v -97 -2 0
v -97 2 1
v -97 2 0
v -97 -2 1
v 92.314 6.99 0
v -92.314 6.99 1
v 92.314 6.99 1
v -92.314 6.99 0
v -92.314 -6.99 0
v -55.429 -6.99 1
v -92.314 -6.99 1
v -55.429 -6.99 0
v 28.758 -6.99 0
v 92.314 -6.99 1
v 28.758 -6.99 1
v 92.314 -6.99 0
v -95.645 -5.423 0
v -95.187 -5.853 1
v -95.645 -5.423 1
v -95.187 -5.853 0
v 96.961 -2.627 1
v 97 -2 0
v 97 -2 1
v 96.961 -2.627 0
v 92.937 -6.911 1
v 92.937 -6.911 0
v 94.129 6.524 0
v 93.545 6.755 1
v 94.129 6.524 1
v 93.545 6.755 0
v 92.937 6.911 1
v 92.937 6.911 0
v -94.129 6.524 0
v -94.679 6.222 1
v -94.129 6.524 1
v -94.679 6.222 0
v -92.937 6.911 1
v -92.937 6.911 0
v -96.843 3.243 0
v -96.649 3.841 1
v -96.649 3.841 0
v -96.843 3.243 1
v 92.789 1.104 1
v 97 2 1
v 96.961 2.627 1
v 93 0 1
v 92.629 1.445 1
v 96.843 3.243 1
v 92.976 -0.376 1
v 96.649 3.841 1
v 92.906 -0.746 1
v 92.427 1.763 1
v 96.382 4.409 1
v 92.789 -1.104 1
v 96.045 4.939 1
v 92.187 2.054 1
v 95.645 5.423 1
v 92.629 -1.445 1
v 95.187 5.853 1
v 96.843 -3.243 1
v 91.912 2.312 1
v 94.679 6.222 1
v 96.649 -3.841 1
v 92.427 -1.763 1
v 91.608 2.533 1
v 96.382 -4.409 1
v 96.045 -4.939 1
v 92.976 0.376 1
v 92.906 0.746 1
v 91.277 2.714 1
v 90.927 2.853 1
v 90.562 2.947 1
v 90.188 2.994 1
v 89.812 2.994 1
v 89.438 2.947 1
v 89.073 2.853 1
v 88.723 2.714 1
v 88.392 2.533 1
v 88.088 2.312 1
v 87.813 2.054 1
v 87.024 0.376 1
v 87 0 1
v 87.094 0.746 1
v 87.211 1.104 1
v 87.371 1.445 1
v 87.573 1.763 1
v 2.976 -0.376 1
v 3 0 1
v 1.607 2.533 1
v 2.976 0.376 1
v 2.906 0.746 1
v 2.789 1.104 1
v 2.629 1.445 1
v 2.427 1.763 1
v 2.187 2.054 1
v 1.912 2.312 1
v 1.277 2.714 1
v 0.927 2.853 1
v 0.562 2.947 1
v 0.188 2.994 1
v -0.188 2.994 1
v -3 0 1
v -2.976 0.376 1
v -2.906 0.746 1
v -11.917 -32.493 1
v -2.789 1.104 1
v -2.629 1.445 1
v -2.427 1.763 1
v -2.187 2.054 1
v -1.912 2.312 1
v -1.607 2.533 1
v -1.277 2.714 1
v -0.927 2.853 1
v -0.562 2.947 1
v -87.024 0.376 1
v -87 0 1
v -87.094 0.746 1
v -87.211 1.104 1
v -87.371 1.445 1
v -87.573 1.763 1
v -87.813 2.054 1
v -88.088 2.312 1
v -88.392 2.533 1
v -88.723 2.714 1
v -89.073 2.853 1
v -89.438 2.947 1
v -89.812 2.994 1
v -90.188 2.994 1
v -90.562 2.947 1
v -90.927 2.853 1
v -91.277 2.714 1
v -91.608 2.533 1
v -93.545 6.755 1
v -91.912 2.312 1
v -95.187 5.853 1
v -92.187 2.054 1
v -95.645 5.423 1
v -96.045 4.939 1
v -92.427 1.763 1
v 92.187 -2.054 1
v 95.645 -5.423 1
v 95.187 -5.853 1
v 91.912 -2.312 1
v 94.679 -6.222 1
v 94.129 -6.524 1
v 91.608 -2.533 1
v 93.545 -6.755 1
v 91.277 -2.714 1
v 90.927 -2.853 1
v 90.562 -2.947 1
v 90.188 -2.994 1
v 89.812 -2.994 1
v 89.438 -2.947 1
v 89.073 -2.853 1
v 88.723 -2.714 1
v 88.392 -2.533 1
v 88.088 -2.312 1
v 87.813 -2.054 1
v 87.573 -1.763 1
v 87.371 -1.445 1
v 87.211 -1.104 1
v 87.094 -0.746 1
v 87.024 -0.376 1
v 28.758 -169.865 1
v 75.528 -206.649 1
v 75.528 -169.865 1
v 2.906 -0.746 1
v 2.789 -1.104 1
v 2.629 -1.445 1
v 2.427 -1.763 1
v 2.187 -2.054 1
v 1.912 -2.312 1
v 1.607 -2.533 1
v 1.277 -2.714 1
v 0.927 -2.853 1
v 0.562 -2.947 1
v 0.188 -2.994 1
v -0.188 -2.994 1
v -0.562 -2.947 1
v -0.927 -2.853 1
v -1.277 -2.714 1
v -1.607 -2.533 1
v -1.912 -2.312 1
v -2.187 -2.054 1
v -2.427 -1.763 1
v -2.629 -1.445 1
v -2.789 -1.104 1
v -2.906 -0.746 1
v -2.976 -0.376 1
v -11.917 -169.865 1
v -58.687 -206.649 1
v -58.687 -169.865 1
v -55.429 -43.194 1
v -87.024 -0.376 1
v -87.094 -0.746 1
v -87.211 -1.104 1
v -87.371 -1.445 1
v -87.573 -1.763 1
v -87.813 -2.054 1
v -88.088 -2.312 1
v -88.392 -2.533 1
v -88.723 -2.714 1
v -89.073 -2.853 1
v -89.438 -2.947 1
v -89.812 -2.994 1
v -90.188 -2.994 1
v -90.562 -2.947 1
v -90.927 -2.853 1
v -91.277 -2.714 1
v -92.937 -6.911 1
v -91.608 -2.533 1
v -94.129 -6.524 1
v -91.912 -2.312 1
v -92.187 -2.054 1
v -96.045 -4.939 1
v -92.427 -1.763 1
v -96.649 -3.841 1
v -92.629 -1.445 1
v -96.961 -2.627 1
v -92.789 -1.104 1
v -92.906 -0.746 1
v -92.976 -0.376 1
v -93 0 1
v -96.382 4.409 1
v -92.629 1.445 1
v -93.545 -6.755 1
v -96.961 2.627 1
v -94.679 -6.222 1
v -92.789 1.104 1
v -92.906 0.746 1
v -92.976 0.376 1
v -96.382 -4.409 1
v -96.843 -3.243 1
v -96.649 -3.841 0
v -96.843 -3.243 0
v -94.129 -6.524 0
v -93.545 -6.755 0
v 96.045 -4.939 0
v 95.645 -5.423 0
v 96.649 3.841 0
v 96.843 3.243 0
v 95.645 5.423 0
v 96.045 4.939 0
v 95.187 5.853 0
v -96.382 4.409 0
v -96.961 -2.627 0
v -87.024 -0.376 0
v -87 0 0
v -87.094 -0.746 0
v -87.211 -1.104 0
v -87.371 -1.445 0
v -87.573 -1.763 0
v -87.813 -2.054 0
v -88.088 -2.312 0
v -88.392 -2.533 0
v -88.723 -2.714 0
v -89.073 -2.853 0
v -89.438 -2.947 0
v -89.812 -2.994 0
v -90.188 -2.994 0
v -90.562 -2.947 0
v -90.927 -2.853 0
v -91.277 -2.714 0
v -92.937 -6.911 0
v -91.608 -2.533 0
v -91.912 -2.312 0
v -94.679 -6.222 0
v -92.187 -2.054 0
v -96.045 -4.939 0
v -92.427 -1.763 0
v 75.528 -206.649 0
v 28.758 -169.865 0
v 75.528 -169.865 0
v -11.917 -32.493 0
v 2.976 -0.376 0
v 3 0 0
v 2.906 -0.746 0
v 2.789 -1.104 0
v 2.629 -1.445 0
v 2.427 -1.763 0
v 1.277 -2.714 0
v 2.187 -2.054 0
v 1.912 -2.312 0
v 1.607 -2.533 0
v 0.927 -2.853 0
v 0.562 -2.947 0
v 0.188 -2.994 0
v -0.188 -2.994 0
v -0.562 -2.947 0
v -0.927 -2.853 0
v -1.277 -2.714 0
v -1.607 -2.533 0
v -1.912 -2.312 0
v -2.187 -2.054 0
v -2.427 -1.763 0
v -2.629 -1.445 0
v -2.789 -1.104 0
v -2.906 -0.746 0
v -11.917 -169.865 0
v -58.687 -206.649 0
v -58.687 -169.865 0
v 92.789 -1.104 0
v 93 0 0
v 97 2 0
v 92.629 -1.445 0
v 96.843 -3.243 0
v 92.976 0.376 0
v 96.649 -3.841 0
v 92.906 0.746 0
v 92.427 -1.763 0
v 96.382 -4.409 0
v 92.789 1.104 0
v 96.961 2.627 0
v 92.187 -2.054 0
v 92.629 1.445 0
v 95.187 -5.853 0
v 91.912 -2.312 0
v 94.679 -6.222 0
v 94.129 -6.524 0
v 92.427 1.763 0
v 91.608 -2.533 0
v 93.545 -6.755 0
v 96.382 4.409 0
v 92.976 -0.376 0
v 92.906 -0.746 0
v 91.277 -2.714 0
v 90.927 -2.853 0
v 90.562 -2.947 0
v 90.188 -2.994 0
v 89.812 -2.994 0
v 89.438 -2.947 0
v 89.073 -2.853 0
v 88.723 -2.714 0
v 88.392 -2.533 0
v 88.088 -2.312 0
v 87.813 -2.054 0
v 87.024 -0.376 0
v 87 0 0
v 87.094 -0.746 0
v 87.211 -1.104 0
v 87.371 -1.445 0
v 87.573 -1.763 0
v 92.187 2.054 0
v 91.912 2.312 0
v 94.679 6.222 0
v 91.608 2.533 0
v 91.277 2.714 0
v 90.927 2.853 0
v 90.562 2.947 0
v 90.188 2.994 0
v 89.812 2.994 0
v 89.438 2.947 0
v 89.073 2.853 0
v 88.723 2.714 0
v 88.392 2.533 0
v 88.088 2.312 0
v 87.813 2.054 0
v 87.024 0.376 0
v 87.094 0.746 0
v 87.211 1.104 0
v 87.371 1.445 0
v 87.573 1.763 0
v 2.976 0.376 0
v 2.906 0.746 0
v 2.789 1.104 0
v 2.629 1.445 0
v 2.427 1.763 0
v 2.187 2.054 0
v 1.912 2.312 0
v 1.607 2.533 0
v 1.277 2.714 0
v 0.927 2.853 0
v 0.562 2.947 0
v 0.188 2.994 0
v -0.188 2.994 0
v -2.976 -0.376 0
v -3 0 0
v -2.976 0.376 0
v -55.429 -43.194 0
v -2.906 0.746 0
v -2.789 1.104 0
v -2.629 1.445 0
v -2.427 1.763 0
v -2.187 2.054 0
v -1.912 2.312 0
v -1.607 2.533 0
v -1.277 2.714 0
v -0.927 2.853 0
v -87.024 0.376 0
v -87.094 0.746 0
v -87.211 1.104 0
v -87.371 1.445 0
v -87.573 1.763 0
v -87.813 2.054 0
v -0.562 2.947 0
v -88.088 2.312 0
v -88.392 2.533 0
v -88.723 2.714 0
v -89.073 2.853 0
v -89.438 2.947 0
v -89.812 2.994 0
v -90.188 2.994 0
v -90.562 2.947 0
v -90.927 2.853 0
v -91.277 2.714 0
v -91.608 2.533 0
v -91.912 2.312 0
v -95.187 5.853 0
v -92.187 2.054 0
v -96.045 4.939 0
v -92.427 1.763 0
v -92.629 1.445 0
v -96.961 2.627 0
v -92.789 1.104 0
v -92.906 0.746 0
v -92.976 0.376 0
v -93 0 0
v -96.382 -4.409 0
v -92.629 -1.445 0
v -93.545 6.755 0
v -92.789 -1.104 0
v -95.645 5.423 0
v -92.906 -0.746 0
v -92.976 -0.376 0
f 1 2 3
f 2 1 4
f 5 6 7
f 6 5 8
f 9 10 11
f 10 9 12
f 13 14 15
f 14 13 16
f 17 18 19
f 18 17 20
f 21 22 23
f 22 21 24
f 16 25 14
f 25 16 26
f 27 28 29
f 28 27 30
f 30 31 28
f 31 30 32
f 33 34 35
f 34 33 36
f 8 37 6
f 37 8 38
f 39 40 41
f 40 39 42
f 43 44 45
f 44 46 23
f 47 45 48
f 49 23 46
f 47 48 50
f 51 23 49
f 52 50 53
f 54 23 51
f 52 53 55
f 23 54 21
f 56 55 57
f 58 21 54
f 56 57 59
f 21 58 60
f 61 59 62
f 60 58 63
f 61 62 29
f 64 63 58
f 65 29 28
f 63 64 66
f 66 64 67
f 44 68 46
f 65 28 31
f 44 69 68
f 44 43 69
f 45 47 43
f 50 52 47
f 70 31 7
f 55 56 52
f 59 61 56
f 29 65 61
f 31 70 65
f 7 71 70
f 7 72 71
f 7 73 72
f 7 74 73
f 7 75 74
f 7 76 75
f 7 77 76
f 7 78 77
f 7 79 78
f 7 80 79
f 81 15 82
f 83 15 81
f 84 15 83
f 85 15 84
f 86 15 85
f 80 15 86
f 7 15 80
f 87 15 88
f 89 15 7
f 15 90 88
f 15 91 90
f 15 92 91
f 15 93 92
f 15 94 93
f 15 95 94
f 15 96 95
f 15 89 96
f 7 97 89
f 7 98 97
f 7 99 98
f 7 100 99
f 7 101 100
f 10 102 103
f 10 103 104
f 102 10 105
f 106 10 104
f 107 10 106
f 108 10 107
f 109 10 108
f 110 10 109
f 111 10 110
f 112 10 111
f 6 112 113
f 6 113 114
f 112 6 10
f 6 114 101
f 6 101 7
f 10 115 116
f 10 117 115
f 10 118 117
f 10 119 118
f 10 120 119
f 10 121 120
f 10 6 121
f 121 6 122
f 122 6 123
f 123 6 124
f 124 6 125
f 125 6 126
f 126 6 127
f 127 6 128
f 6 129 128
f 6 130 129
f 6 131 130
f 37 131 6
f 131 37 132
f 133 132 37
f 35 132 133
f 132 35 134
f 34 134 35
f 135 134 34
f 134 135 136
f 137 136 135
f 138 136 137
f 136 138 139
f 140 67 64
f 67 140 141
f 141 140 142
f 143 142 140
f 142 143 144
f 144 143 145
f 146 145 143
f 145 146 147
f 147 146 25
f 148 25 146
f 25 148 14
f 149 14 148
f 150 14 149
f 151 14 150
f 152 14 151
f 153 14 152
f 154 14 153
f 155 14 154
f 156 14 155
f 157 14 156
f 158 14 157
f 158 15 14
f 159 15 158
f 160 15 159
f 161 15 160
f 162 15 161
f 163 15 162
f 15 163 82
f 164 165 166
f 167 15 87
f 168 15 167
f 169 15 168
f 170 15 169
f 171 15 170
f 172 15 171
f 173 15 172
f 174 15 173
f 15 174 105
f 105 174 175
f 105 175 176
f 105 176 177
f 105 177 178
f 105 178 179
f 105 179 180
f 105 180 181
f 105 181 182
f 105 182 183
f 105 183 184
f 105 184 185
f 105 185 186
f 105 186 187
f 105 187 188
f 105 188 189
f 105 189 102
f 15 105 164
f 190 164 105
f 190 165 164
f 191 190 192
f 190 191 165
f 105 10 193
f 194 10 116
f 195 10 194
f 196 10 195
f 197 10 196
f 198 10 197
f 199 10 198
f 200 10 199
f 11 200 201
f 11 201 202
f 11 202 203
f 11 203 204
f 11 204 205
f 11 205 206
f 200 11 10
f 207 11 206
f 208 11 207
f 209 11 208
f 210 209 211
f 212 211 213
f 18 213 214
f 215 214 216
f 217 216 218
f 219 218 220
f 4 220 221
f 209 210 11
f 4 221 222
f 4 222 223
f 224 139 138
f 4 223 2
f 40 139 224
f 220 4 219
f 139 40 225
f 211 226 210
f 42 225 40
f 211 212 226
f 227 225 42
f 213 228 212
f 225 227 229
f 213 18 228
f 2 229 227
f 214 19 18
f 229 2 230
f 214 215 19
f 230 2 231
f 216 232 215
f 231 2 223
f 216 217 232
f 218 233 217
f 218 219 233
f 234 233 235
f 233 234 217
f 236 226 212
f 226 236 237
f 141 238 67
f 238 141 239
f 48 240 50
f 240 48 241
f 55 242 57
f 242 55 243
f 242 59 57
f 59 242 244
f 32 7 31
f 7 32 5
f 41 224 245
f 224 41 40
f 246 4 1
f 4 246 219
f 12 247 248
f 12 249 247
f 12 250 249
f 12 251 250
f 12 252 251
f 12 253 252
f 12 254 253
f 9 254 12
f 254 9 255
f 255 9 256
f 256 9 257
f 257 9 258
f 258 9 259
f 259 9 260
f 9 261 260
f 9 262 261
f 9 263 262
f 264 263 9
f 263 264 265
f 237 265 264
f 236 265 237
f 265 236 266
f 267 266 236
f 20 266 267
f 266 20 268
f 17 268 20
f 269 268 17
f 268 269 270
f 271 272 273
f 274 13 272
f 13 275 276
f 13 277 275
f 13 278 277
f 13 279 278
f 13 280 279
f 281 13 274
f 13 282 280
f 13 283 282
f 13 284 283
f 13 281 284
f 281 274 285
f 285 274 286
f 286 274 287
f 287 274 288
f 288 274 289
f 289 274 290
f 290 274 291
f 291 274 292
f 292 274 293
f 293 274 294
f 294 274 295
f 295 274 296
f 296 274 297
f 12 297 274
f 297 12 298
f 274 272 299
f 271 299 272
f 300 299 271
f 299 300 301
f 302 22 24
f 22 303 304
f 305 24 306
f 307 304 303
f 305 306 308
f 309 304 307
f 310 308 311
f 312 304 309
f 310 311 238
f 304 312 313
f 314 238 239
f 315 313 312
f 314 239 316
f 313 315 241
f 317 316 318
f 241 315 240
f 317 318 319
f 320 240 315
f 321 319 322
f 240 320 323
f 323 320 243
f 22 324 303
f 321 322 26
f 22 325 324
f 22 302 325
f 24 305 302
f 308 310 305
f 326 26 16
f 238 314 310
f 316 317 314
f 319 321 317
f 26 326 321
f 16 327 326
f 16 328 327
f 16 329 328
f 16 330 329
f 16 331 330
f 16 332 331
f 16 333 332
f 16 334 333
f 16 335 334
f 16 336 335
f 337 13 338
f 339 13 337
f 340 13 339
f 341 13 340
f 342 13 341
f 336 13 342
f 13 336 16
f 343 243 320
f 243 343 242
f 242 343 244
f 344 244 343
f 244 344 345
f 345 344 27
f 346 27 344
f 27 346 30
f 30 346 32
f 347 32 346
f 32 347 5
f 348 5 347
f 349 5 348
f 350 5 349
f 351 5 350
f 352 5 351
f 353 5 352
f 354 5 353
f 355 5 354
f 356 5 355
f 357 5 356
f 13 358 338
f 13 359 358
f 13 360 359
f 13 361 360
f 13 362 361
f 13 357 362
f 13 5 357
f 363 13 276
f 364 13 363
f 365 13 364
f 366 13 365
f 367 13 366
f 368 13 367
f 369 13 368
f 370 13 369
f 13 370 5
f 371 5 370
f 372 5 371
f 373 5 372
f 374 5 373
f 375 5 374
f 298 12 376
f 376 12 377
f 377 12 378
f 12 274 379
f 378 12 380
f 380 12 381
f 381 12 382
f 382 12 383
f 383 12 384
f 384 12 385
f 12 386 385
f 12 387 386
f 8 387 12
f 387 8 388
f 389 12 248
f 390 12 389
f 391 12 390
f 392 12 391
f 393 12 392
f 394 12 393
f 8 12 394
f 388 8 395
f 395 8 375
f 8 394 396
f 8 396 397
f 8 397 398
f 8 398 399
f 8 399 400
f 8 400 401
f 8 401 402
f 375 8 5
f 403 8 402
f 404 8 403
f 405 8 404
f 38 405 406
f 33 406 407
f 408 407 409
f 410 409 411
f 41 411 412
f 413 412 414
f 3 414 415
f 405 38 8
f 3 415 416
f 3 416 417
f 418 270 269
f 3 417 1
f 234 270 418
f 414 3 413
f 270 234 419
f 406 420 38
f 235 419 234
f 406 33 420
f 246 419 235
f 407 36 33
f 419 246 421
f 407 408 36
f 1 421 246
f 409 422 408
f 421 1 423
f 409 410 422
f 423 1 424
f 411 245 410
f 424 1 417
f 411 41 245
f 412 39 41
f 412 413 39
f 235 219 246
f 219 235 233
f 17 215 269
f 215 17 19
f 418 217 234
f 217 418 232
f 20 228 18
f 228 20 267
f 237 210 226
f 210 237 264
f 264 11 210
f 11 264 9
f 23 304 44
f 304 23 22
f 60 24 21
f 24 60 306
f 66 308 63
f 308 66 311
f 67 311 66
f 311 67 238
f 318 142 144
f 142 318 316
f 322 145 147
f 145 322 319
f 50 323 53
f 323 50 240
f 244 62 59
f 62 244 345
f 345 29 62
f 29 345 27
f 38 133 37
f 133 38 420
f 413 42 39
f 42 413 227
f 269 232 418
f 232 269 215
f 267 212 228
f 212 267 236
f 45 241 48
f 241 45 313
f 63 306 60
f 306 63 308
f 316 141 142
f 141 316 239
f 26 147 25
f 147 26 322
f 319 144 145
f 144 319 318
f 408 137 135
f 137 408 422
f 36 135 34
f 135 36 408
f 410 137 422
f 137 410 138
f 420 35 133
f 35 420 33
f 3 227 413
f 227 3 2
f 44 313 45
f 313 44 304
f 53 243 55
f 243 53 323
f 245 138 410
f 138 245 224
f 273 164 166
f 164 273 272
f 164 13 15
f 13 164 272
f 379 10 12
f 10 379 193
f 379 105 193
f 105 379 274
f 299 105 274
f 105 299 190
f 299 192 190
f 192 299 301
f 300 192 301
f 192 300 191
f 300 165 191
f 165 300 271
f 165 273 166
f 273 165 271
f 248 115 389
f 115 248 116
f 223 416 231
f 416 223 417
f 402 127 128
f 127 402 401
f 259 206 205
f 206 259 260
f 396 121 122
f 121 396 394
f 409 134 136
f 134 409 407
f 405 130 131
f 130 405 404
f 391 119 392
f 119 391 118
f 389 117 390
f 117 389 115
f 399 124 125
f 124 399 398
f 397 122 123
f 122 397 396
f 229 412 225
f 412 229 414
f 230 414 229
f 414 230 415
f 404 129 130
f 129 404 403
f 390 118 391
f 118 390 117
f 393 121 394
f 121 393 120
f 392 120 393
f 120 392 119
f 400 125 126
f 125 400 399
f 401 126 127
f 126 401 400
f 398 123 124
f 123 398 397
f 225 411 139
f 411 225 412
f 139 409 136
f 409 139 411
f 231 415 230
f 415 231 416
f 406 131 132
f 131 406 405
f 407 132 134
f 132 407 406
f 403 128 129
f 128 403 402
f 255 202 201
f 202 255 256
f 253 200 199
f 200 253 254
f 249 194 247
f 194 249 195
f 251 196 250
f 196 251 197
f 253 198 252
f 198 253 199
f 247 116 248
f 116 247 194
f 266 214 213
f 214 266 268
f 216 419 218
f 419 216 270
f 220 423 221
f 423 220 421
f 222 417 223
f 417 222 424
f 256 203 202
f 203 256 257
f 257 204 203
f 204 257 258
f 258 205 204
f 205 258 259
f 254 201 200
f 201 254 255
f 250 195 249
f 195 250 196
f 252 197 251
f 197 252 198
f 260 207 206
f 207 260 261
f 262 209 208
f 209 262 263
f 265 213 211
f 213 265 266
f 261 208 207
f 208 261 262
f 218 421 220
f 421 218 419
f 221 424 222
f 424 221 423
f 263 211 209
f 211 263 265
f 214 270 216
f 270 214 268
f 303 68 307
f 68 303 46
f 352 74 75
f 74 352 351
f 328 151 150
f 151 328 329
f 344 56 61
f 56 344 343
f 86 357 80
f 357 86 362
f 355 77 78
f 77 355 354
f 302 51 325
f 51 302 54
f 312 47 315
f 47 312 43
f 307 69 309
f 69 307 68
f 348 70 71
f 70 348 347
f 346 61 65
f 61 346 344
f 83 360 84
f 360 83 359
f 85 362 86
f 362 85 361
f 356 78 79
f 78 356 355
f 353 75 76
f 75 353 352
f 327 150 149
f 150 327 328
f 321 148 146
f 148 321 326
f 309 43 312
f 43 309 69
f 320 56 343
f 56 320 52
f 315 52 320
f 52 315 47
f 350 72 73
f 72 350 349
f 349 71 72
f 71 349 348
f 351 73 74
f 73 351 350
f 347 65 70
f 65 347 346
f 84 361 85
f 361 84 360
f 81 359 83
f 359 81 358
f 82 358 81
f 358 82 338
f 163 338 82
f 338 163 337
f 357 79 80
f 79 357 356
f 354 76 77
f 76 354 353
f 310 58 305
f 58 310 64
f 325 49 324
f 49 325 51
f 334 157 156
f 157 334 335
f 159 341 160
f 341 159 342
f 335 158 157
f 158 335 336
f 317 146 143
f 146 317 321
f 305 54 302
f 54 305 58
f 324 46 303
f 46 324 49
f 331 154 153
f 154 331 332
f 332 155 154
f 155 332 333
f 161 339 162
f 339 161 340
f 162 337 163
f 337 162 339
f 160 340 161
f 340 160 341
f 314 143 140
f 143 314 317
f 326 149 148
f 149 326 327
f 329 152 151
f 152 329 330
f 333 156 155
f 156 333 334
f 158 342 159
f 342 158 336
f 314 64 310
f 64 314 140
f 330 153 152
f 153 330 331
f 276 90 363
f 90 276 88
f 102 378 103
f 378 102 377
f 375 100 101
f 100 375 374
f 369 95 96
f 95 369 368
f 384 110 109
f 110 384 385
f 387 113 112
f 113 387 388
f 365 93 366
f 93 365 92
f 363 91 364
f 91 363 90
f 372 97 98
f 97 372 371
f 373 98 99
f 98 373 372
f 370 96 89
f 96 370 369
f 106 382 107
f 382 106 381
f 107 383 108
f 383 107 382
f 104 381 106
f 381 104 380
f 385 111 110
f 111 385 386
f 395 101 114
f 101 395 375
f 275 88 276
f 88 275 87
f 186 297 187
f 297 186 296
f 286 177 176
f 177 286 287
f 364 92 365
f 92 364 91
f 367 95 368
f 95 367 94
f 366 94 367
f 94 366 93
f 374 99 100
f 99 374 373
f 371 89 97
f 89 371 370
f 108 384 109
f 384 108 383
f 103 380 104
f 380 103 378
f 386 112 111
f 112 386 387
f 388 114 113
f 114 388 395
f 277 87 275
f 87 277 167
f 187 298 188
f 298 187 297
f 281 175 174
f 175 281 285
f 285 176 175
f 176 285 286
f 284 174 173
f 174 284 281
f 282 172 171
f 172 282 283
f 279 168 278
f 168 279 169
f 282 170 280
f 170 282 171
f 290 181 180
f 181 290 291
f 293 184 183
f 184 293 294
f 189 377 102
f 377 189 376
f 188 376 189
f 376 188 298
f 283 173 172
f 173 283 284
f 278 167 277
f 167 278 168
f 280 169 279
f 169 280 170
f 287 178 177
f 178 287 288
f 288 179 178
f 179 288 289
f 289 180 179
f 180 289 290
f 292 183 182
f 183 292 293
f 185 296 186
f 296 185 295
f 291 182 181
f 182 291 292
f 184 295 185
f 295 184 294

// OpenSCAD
$fn = 50;


difference() {
	union() {
		translate(v = [0, 0, 0]) {
			rotate(a = [0, 0, 0]) {
				hull() {
					translate(v = [-92.0000000000, 2.0000000000, 0]) {
						rotate(a = [0, 0, 0]) {
							translate(v = [0, 0, 0]) {
								rotate(a = [0, 0, 0]) {
									cylinder(h = 1, r = 5);
								}
							}
						}
					}
					translate(v = [92.0000000000, 2.0000000000, 0]) {
						rotate(a = [0, 0, 0]) {
							translate(v = [0, 0, 0]) {
								rotate(a = [0, 0, 0]) {
									cylinder(h = 1, r = 5);
								}
							}
						}
					}
					translate(v = [-92.0000000000, -2.0000000000, 0]) {
						rotate(a = [0, 0, 0]) {
							translate(v = [0, 0, 0]) {
								rotate(a = [0, 0, 0]) {
									cylinder(h = 1, r = 5);
								}
							}
						}
					}
					translate(v = [92.0000000000, -2.0000000000, 0]) {
						rotate(a = [0, 0, 0]) {
							translate(v = [0, 0, 0]) {
								rotate(a = [0, 0, 0]) {
									cylinder(h = 1, r = 5);
								}
							}
						}
					}
				}
			}
		}
		translate(v = [0, 0, 0]) {
			rotate(a = [0, 0, 0]) {
				linear_extrude(height = 1) {
					text(font = "DejaVu Sans Mono:style=Bold", halign = "center", size = 209.0000000000, text = "1", valign = "top");
				}
			}
		}
	}
	union() {
		translate(v = [-90.0000000000, 0.0000000000, -125.0000000000]) {
			rotate(a = [0, 0, 0]) {
				cylinder(h = 250, r = 3.0000000000);
			}
		}
		translate(v = [90.0000000000, 0.0000000000, -125.0000000000]) {
			rotate(a = [0, 0, 0]) {
				cylinder(h = 250, r = 3.0000000000);
			}
		}
		translate(v = [90.0000000000, 0.0000000000, -125.0000000000]) {
			rotate(a = [0, 0, 0]) {
				cylinder(h = 250, r = 3.0000000000);
			}
		}
		translate(v = [0, 0, -125.0000000000]) {
			rotate(a = [0, 0, 0]) {
				cylinder(h = 250, r = 3.0000000000);
			}
		}
	}
}
